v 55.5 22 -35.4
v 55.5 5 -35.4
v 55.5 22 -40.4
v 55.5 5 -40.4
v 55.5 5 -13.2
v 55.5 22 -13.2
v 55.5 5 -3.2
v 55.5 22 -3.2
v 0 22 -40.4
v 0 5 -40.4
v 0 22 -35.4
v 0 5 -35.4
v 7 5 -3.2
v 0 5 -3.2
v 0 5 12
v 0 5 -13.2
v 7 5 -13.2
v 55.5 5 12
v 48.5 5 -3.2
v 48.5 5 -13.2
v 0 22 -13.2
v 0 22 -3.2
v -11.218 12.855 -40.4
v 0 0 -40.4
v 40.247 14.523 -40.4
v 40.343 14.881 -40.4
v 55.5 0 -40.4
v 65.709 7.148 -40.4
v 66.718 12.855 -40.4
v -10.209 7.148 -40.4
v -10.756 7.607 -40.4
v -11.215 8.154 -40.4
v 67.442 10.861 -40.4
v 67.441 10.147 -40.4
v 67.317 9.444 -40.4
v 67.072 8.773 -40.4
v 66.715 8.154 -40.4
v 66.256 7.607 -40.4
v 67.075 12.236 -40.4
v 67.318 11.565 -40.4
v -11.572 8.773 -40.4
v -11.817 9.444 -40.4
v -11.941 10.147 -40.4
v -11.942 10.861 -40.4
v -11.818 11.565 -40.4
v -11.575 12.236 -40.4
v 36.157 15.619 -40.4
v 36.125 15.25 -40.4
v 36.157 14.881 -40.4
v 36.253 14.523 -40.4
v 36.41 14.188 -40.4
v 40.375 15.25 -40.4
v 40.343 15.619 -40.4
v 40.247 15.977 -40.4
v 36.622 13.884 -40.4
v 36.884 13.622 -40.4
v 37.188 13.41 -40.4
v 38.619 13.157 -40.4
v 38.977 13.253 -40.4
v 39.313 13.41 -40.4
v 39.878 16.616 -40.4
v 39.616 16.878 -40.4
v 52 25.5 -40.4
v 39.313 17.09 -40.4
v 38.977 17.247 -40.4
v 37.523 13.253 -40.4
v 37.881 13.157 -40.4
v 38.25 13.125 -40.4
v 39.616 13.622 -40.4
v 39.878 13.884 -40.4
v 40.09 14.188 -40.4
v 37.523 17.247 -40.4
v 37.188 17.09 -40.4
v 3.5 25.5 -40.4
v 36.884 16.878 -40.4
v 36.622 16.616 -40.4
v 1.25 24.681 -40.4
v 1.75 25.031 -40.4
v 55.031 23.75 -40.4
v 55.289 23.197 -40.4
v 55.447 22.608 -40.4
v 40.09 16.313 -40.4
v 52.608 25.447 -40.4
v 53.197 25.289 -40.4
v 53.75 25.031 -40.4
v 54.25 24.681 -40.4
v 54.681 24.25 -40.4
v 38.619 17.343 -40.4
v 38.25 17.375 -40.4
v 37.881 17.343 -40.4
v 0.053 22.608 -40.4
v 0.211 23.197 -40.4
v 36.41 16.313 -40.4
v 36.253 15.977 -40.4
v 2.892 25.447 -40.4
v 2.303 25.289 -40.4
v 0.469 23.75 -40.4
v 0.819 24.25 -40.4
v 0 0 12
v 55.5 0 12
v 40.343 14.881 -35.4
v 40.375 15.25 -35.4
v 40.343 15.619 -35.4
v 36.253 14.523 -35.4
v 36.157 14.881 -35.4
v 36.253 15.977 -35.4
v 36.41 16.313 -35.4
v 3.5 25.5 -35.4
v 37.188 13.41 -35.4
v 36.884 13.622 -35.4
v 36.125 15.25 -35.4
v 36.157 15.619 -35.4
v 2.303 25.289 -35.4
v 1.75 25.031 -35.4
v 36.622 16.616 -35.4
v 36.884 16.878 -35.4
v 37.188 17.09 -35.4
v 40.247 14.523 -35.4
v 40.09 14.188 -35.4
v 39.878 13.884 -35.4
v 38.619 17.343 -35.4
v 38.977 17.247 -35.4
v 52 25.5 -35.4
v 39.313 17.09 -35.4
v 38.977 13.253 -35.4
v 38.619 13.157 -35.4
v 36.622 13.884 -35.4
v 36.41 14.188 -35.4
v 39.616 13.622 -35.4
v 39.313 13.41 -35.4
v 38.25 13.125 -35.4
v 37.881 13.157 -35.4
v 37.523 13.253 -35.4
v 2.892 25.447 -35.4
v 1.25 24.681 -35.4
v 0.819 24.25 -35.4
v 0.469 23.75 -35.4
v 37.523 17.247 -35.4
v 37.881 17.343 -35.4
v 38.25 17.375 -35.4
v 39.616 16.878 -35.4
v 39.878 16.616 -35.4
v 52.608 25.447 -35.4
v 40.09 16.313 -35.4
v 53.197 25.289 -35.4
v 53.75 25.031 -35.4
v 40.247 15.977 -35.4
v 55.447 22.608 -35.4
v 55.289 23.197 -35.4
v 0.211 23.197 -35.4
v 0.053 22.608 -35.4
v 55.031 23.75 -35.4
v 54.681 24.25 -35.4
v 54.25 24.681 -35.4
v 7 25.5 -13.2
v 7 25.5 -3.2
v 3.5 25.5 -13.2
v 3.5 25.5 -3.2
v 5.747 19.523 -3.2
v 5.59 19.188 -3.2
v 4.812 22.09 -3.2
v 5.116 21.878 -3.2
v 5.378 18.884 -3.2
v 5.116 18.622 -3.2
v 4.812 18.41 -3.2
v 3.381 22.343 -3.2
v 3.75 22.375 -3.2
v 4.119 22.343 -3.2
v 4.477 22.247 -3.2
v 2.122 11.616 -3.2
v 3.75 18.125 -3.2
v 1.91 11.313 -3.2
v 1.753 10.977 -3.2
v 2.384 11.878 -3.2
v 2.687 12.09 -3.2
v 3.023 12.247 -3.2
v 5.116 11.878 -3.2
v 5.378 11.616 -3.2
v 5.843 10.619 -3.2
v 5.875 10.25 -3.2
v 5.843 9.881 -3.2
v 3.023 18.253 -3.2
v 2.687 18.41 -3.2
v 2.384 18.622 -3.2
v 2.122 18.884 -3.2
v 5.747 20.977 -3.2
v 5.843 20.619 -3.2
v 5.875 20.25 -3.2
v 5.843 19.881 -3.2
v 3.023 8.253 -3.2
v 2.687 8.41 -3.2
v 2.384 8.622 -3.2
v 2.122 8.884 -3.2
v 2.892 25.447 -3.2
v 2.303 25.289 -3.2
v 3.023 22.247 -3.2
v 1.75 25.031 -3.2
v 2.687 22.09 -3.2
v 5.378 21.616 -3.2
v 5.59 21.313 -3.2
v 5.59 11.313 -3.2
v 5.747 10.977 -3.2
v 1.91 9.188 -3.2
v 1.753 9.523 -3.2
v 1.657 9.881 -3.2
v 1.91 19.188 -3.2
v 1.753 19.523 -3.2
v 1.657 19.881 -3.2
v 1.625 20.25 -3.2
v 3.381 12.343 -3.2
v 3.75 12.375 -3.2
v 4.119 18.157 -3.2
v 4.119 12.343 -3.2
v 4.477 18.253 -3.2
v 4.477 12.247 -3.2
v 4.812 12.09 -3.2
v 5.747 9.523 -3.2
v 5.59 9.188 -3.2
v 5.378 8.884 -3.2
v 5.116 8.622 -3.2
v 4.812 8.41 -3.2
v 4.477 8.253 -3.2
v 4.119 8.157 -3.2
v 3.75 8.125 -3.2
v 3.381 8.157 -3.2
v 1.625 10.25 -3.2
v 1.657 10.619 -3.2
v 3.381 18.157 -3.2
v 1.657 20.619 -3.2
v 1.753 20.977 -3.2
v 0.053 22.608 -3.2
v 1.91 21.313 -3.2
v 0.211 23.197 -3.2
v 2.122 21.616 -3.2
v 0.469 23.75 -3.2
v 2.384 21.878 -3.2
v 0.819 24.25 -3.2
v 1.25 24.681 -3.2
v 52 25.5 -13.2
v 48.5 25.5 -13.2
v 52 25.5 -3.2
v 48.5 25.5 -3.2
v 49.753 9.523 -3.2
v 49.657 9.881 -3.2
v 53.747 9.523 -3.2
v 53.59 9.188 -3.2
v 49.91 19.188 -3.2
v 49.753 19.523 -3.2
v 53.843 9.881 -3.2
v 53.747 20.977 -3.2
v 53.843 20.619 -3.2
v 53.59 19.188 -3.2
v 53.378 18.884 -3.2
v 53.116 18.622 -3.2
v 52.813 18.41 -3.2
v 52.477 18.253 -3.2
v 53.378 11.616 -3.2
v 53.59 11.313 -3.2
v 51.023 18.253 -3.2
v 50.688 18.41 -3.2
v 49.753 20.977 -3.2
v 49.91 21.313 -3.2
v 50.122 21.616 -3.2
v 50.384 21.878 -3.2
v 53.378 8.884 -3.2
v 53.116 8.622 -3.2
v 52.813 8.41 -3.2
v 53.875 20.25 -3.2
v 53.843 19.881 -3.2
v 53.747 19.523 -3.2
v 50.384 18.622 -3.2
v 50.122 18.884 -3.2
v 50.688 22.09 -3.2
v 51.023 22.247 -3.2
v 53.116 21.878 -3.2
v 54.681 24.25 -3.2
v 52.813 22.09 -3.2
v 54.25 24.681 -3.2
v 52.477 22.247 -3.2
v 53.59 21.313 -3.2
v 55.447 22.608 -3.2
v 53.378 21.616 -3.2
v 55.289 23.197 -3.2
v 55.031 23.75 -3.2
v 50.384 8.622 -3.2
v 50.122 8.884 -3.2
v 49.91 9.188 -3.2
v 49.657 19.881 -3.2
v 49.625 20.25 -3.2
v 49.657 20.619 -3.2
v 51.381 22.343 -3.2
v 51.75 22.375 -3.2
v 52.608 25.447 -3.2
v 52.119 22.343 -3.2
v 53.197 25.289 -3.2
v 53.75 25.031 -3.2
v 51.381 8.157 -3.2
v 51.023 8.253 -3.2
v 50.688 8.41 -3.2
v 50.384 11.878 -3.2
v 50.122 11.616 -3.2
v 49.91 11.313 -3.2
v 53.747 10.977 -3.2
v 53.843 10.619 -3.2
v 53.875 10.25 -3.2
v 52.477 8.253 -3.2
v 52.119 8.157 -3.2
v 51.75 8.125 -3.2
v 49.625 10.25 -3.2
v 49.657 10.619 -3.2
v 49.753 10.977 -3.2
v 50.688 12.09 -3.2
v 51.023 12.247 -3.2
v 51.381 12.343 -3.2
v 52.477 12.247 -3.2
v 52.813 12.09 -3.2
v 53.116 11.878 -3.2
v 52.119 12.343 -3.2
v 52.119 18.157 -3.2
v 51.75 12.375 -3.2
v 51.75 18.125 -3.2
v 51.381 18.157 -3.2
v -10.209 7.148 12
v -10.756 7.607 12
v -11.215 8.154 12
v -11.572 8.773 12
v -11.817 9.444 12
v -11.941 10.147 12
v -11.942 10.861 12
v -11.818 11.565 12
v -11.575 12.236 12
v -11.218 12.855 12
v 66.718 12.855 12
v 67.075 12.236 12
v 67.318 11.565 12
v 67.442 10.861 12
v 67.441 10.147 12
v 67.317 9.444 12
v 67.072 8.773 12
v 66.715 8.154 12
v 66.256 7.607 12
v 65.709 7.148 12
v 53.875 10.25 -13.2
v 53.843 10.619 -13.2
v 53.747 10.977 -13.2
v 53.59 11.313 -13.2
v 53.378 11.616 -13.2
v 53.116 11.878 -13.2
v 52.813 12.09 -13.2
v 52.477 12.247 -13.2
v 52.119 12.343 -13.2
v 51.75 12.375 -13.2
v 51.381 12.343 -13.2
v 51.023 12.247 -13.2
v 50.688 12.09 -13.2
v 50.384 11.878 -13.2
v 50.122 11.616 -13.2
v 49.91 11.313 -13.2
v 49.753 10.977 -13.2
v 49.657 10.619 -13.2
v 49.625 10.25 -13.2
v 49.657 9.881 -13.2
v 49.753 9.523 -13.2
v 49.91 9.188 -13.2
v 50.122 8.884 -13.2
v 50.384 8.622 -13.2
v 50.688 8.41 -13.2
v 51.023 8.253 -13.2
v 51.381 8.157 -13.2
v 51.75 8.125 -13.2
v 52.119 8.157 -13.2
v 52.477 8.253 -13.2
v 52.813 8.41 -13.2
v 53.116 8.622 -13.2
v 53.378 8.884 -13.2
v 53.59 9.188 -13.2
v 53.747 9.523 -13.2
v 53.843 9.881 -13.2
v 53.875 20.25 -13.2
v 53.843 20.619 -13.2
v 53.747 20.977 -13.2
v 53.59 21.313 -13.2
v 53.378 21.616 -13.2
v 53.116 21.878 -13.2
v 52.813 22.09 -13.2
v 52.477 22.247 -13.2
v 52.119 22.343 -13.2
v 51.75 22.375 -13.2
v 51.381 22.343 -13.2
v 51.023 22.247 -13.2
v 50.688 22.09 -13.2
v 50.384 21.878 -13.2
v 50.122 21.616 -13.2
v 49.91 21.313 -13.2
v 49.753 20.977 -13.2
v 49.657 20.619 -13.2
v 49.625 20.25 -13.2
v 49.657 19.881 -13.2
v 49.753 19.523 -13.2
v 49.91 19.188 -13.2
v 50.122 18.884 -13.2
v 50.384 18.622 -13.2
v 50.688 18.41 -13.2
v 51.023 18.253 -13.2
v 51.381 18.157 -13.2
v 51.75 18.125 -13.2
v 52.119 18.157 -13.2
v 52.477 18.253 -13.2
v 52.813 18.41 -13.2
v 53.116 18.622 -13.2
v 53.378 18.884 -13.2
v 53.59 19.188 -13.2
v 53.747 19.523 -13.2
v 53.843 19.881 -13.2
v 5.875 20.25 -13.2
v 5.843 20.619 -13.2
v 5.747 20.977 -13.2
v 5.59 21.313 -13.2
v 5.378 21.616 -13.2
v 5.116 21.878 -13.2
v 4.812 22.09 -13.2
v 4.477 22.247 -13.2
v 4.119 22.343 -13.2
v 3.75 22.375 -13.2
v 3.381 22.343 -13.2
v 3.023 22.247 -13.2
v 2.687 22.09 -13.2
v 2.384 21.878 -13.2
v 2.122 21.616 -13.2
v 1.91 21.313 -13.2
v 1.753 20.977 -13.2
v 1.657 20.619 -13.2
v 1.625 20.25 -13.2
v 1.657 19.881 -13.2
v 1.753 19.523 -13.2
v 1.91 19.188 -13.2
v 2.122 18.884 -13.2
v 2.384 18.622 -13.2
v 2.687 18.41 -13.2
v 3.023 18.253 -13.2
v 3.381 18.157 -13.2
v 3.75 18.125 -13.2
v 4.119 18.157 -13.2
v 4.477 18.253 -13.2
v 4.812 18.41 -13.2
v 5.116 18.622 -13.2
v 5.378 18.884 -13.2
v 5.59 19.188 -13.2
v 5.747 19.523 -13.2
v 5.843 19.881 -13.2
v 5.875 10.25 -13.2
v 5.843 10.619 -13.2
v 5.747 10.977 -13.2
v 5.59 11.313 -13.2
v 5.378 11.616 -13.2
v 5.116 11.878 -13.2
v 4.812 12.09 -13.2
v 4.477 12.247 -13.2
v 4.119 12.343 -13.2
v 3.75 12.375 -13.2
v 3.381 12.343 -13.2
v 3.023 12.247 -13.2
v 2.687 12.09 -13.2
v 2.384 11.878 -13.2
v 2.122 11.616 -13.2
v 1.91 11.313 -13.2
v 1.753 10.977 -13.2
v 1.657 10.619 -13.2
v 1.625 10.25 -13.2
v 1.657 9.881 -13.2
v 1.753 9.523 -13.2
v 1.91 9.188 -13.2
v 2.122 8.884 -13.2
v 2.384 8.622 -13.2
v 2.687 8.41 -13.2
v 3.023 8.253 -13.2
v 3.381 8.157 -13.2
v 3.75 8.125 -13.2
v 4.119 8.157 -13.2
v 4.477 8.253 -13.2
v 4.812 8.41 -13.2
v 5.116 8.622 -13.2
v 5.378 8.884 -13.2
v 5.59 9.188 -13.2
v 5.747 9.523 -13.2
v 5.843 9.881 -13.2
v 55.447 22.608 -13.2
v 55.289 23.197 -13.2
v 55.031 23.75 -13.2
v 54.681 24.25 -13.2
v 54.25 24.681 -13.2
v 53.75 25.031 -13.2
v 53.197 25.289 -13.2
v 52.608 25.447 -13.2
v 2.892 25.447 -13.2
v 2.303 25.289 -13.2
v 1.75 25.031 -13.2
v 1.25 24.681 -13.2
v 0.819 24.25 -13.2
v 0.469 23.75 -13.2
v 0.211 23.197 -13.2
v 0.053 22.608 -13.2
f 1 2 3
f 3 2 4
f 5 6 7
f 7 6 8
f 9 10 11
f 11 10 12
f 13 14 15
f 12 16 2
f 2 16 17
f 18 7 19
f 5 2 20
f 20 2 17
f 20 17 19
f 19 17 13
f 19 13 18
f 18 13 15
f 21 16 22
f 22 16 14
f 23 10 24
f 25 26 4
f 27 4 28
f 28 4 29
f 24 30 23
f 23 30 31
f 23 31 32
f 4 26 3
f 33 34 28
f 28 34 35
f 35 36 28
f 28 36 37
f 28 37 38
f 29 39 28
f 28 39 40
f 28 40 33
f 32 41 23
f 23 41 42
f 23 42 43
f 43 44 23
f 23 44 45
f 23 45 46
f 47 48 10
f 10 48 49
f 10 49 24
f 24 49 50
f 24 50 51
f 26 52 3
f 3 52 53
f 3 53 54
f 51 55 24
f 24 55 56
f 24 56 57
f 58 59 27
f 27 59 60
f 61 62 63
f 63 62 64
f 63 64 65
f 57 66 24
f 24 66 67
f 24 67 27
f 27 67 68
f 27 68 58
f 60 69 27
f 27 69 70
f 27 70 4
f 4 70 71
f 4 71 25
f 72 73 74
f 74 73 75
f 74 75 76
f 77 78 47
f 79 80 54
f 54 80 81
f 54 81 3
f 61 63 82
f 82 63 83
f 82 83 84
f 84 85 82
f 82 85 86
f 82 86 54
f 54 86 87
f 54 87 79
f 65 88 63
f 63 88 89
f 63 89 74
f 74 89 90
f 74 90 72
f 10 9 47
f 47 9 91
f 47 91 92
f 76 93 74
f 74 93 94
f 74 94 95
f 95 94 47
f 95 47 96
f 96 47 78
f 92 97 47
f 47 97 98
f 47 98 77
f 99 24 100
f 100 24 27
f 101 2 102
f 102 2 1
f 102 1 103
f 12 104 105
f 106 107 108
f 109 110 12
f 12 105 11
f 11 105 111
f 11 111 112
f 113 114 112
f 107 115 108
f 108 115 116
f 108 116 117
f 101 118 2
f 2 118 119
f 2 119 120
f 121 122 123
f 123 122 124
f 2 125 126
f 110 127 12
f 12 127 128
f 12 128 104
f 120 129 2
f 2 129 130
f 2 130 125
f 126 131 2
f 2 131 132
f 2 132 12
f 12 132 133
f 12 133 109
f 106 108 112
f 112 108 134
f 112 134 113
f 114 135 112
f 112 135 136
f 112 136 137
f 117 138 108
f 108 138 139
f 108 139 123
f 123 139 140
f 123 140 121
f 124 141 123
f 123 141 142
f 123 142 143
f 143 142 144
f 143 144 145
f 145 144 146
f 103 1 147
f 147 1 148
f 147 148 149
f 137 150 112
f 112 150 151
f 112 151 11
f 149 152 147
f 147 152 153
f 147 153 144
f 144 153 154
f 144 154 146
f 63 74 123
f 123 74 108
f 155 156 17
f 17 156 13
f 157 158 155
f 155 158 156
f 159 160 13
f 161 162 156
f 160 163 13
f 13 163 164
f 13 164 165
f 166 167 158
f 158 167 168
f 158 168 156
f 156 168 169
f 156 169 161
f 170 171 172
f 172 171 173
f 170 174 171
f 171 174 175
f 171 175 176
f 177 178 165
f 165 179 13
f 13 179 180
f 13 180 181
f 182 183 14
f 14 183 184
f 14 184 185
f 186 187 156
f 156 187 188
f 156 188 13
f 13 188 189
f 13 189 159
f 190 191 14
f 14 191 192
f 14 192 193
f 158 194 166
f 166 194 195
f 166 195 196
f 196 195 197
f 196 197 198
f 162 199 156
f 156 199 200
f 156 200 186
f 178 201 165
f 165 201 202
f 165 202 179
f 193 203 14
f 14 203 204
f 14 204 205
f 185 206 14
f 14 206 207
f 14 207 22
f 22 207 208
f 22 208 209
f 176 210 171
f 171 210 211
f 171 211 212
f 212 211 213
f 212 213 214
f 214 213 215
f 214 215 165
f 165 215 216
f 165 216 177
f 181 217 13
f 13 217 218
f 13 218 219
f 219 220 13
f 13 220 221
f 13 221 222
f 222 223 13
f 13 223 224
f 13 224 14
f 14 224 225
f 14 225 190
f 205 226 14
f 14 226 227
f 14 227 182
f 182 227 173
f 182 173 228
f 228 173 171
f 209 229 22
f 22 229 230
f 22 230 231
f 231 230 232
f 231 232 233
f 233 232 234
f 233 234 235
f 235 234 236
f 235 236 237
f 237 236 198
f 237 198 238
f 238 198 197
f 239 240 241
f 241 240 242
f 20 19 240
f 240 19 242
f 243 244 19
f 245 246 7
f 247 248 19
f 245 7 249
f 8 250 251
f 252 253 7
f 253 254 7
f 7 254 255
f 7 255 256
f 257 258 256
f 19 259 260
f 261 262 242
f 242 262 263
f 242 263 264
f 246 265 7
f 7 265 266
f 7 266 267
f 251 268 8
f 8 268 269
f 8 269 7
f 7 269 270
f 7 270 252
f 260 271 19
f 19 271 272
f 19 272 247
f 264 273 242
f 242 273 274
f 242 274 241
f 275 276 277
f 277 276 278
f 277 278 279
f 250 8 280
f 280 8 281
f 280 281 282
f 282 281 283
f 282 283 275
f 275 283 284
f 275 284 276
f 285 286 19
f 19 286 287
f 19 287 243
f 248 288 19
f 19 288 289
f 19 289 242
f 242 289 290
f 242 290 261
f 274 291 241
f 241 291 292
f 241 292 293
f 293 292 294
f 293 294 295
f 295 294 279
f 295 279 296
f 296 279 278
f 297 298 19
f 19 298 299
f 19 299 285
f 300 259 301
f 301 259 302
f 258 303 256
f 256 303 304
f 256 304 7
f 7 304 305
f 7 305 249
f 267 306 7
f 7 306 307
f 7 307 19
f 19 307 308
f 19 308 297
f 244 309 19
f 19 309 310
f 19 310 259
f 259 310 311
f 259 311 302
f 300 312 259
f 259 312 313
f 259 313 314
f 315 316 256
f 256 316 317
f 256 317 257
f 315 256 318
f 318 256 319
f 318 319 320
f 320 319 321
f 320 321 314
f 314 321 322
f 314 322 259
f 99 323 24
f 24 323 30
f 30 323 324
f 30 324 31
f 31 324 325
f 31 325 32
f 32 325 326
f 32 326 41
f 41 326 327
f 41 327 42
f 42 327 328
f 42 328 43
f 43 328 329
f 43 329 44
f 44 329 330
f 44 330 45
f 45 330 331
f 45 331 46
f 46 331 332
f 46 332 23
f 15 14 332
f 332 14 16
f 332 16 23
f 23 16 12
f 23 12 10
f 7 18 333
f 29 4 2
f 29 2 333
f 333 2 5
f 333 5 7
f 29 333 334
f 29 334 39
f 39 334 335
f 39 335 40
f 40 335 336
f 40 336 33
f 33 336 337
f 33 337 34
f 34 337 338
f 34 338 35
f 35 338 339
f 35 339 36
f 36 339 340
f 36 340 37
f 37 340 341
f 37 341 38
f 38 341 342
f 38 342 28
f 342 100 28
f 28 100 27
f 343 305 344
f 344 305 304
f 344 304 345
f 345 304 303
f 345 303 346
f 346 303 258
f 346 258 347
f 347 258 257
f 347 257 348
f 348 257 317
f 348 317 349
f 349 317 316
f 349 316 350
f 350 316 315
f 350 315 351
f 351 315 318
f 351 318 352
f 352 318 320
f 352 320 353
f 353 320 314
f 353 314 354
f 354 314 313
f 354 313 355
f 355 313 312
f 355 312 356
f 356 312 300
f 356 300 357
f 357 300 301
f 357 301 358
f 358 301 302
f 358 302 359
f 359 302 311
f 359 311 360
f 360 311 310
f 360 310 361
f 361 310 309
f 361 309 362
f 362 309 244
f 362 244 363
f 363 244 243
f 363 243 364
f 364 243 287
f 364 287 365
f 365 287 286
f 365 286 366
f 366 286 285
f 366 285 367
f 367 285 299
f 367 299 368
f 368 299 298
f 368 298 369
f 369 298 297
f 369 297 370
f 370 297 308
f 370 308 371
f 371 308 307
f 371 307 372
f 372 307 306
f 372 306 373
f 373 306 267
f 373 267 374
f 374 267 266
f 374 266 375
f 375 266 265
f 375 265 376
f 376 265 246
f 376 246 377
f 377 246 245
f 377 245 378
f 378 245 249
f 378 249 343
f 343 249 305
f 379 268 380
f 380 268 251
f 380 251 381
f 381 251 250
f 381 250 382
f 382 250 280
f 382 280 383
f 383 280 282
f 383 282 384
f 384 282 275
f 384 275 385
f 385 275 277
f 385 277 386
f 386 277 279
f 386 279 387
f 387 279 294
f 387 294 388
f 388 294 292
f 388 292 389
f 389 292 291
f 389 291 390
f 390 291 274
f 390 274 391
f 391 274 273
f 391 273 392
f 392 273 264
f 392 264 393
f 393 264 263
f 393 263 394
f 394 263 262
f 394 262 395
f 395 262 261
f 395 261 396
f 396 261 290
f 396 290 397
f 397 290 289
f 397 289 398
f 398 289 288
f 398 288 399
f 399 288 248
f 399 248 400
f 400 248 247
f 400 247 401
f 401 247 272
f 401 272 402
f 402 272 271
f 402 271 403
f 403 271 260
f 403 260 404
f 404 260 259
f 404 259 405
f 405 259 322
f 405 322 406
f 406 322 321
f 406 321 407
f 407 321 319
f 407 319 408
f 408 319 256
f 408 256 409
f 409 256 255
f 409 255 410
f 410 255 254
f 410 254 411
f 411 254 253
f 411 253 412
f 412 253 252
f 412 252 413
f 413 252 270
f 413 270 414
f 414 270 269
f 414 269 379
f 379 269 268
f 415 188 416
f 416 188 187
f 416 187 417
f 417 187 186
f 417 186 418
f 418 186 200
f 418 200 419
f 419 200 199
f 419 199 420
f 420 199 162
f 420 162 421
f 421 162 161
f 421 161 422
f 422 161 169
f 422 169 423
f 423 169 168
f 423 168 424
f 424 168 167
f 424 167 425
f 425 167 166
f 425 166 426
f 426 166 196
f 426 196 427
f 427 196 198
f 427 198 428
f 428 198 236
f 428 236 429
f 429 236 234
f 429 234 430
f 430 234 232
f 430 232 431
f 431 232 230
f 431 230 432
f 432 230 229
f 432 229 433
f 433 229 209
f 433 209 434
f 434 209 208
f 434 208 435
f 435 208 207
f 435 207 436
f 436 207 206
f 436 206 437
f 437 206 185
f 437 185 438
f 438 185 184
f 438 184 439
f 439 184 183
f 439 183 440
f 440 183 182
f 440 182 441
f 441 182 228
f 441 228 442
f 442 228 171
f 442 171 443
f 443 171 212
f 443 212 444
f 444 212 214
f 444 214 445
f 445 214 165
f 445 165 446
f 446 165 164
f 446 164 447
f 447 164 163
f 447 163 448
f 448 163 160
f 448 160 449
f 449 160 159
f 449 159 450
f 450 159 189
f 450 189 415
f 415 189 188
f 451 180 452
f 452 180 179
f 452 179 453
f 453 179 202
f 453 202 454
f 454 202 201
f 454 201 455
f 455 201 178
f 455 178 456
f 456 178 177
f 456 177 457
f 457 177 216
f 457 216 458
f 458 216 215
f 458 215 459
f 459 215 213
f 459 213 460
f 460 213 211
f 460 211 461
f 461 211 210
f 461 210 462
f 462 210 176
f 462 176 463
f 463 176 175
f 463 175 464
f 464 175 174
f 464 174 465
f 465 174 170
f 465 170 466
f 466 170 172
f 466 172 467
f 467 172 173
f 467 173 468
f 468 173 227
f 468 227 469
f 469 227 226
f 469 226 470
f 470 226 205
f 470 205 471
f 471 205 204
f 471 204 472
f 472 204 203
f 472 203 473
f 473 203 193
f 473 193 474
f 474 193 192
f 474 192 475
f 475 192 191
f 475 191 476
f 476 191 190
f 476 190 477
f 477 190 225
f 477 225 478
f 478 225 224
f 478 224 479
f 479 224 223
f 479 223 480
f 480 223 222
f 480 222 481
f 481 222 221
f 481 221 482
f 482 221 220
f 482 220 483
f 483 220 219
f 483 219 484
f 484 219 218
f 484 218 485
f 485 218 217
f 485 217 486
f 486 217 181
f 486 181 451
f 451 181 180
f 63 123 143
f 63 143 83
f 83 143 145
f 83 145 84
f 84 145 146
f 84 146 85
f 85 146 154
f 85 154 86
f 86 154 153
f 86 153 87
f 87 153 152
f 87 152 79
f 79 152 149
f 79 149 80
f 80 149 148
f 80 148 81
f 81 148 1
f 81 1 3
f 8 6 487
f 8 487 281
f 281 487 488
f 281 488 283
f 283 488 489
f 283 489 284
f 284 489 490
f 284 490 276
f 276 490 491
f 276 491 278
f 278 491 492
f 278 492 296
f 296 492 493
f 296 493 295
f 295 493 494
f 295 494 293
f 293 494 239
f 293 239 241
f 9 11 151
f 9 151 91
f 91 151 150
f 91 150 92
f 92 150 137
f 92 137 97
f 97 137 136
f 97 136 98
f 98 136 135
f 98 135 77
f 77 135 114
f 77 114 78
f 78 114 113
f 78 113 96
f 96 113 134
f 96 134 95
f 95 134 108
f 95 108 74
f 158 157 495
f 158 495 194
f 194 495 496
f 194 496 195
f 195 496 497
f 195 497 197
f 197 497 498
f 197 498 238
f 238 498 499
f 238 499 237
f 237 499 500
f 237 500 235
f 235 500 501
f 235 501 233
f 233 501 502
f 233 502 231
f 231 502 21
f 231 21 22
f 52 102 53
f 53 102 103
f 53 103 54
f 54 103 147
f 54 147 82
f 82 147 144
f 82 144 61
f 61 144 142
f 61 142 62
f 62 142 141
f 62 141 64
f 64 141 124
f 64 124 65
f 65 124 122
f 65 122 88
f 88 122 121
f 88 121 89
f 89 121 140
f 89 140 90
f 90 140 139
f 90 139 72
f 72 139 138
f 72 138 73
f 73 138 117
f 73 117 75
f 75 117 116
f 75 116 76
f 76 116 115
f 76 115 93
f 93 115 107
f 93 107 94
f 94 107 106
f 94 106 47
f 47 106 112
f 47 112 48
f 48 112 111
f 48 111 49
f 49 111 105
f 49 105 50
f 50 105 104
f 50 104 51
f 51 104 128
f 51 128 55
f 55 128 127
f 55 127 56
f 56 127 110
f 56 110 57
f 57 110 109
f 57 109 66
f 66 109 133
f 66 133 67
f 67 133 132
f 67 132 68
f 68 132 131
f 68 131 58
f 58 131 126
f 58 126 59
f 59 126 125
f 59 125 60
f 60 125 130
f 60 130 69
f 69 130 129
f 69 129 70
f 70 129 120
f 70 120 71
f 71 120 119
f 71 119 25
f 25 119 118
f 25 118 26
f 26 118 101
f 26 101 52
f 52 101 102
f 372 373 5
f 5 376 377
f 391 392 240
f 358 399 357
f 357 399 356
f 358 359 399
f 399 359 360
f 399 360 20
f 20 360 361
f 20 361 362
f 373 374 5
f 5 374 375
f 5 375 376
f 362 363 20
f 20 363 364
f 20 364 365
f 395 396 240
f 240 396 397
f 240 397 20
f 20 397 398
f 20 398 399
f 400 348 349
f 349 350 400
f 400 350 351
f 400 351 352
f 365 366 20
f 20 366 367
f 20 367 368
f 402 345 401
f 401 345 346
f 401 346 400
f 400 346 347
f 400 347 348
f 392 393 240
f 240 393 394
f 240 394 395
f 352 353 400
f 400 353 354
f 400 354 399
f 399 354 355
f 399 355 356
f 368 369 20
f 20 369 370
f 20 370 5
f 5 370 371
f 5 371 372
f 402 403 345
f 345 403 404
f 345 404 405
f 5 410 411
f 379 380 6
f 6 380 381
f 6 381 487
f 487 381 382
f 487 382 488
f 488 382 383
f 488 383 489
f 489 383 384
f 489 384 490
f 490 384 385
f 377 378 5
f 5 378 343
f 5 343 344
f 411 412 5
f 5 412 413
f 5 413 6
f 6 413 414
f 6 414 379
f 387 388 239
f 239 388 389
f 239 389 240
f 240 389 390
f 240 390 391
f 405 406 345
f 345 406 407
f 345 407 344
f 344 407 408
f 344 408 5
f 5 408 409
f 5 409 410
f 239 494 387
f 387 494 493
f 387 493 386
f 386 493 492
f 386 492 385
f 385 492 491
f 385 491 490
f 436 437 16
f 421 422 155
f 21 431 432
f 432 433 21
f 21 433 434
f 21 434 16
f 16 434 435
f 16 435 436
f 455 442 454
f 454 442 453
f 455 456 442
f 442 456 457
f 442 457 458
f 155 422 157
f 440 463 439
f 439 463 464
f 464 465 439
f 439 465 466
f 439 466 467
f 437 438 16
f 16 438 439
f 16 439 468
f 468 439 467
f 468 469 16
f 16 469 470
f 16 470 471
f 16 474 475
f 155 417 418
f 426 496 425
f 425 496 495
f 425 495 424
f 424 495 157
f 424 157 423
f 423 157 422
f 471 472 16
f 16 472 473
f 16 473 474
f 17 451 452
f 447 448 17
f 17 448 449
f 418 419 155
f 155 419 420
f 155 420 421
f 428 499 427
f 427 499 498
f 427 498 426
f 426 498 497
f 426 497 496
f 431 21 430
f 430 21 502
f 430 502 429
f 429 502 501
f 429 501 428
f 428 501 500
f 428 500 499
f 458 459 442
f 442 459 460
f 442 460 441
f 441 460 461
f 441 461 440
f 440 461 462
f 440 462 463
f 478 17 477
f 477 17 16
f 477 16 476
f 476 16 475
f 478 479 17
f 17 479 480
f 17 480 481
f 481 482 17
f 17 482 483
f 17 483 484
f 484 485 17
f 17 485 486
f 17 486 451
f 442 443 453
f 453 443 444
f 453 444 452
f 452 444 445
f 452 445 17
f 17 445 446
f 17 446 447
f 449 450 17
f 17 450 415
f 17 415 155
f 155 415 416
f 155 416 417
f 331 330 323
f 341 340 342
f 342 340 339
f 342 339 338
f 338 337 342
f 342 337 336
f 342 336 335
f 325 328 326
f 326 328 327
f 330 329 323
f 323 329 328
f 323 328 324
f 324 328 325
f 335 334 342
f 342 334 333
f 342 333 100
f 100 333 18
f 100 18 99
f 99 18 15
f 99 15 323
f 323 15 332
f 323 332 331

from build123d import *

# Parameters (mm, degrees)
SKETCH1_W           = 55.5
SKETCH1_H           = 40.4
BASE_DEPTH          = 5
SKETCH2_W           = 55.5
SKETCH2_H           = 25.5
WALL_DEPTH          = 5
SKETCH3_W           = 7
SKETCH3_H           = 20.5
MOUNTINGTABS_DEPTH  = 5
LIPS_REACH          = 75.23
SKETCH5_R           = 2.125
MOUNTINGHOLES_DEPTH = 5
FILLETS_R           = 3.5
SKETCH6_R           = 2.125
THROUGHHOLE_DEPTH   = 5
SKETCH7_R           = 2.125
BOSS_EXTRUDE1_DEPTH = 5
BOSS_EXTRUDE2_START = 12
BOSS_EXTRUDE2_DEPTH = 12


with BuildPart() as part:
    # Sketch1 → base (new body)
    with BuildSketch(Plane(origin=(0, 0, 0), x_dir=(1, 0, 0), z_dir=(0, 1, 0))):
        with Locations((27.75, 20.2)):
            Rectangle(SKETCH1_W, SKETCH1_H)
    extrude(amount=BASE_DEPTH)

    # Sketch2 → wall (add)
    with BuildSketch(Plane(origin=(0, 0, -40.4), x_dir=(-1, 0, 0), z_dir=(0, 0, -1))):
        with Locations((-27.75, 12.75)):
            Rectangle(SKETCH2_W, SKETCH2_H)
    extrude(amount=-WALL_DEPTH)

    # Sketch3 → mountingTabs (add)
    with BuildSketch(Plane.XY.offset(-8.2)):
        with Locations((3.5, 15.25)):
            Rectangle(SKETCH3_W, SKETCH3_H)
        with Locations((52, 15.25)):
            Rectangle(SKETCH3_W, SKETCH3_H)
    extrude(amount=MOUNTINGTABS_DEPTH)

    # lips: up to this face of the body (flat: up to its plane)
    lips_end = Plane(part.part.faces().sort_by_distance((27.75, 12.75, -40.4))[0])
    # Sketch4 → lips (add, up to the picked face)
    with BuildSketch(Plane.XY, mode=Mode.PRIVATE) as lips_sk1:
        with BuildLine():
            Line((0, 0), (-10.208884478, 7.148337868))
            ThreePointArc((-10.208884478, 7.148337868), (-11.894564223, 9.792816133), (-11.218174515, 12.85505036))
            Line((-11.218174515, 12.85505036), (0, 5))
            Line((0, 5), (0, 0))
        make_face()
    lips_tool1 = split(extrude(lips_sk1.sketch, amount=-LIPS_REACH, mode=Mode.PRIVATE), bisect_by=lips_end, keep=Keep.BOTH, mode=Mode.PRIVATE)
    # Sketch4 → lips (add, up to the picked face)
    with BuildSketch(Plane.XY, mode=Mode.PRIVATE) as lips_sk2:
        with BuildLine():
            Line((55.5, 5), (66.718174515, 12.85505036))
            ThreePointArc((66.718174515, 12.85505036), (67.394564223, 9.792816133), (65.708884478, 7.148337868))
            Line((65.708884478, 7.148337868), (55.5, 0))
            Line((55.5, 0), (55.5, 5))
        make_face()
    lips_tool2 = split(extrude(lips_sk2.sketch, amount=-LIPS_REACH, mode=Mode.PRIVATE), bisect_by=lips_end, keep=Keep.BOTH, mode=Mode.PRIVATE)
    add(lips_tool1.solids().sort_by(Axis((-5.839287, 6.590277, 0), (0, 0, -1)))[0])
    add(lips_tool2.solids().sort_by(Axis((61.339287, 6.590277, 0), (0, 0, -1)))[0])

    # Sketch5 → mountingHoles (cut)
    with BuildSketch(Plane.XY.offset(-3.2)):
        with Locations((3.75, 20.25)):
            Circle(SKETCH5_R)
        with Locations(Location((3.75, 10.25, 0), (0, 0, 180))):
            Circle(SKETCH5_R)
        with Locations((51.75, 10.25)):
            Circle(SKETCH5_R)
        with Locations(Location((51.75, 20.25, 0), (0, 0, 180))):
            Circle(SKETCH5_R)
    extrude(amount=-MOUNTINGHOLES_DEPTH, mode=Mode.SUBTRACT)

    # fillets
    fillets_edges = [part.edges().sort_by_distance(p)[0] for p in [
        (0, 25.5, -37.9),
        (55.5, 25.5, -37.9),
        (0, 25.5, -5.7),
        (55.5, 25.5, -5.7),
    ]]
    fillet(fillets_edges, radius=FILLETS_R)

    # Sketch6 → throughHole (cut)
    with BuildSketch(Plane.XY.offset(-35.4)):
        with Locations((38.25, 15.25)):
            Circle(SKETCH6_R)
    extrude(amount=-THROUGHHOLE_DEPTH, mode=Mode.SUBTRACT)

    # Sketch7 → Boss-Extrude1 (add)
    # profile 1 of 2: a face of its own
    with BuildSketch(Plane(origin=(0, 0, -8.2), x_dir=(-1, 0, 0), z_dir=(0, 0, -1))):
        with BuildLine():
            Line((-48.5, 25.5), (-52, 25.5))
            ThreePointArc((-52, 25.5), (-54.474873734, 24.474873734), (-55.5, 22))
            Line((-55.5, 22), (-55.5, 5))
            Line((-55.5, 5), (-48.5, 5))
            Line((-48.5, 5), (-48.5, 25.5))
        make_face()
        with Locations((-51.75, 20.25)):
            Circle(SKETCH7_R, mode=Mode.SUBTRACT)
        with Locations(Location((-51.75, 10.25, 0), (0, 0, 180))):
            Circle(SKETCH7_R, mode=Mode.SUBTRACT)
    # profile 2 of 2: a face of its own
    with BuildSketch(Plane(origin=(0, 0, -8.2), x_dir=(-1, 0, 0), z_dir=(0, 0, -1))):
        with BuildLine():
            Line((0, 5), (0, 22))
            ThreePointArc((0, 22), (-1.025126266, 24.474873734), (-3.5, 25.5))
            Line((-3.5, 25.5), (-7, 25.5))
            Line((-7, 25.5), (-7, 5))
            Line((-7, 5), (0, 5))
        make_face()
        with Locations((-3.75, 10.25)):
            Circle(SKETCH7_R, mode=Mode.SUBTRACT)
        with Locations(Location((-3.75, 20.25, 0), (0, 0, 180))):
            Circle(SKETCH7_R, mode=Mode.SUBTRACT)
    extrude(amount=BOSS_EXTRUDE1_DEPTH)

    # Sketch8 → Boss-Extrude2 (add)
    with BuildSketch(Plane.XY.offset(BOSS_EXTRUDE2_START)):
        with BuildLine():
            Line((0, 0), (55.5, 0))
            Line((55.5, 0), (65.708884478, 7.148337868))
            ThreePointArc((65.708884478, 7.148337868), (67.394564223, 9.792816133), (66.718174515, 12.85505036))
            Line((66.718174515, 12.85505036), (55.5, 5))
            Line((55.5, 5), (0, 5))
            Line((0, 5), (-11.218174515, 12.85505036))
            ThreePointArc((-11.218174515, 12.85505036), (-11.894564223, 9.792816133), (-10.208884478, 7.148337868))
            Line((-10.208884478, 7.148337868), (0, 0))
        make_face()
    extrude(amount=-BOSS_EXTRUDE2_DEPTH)


solid = part.part
